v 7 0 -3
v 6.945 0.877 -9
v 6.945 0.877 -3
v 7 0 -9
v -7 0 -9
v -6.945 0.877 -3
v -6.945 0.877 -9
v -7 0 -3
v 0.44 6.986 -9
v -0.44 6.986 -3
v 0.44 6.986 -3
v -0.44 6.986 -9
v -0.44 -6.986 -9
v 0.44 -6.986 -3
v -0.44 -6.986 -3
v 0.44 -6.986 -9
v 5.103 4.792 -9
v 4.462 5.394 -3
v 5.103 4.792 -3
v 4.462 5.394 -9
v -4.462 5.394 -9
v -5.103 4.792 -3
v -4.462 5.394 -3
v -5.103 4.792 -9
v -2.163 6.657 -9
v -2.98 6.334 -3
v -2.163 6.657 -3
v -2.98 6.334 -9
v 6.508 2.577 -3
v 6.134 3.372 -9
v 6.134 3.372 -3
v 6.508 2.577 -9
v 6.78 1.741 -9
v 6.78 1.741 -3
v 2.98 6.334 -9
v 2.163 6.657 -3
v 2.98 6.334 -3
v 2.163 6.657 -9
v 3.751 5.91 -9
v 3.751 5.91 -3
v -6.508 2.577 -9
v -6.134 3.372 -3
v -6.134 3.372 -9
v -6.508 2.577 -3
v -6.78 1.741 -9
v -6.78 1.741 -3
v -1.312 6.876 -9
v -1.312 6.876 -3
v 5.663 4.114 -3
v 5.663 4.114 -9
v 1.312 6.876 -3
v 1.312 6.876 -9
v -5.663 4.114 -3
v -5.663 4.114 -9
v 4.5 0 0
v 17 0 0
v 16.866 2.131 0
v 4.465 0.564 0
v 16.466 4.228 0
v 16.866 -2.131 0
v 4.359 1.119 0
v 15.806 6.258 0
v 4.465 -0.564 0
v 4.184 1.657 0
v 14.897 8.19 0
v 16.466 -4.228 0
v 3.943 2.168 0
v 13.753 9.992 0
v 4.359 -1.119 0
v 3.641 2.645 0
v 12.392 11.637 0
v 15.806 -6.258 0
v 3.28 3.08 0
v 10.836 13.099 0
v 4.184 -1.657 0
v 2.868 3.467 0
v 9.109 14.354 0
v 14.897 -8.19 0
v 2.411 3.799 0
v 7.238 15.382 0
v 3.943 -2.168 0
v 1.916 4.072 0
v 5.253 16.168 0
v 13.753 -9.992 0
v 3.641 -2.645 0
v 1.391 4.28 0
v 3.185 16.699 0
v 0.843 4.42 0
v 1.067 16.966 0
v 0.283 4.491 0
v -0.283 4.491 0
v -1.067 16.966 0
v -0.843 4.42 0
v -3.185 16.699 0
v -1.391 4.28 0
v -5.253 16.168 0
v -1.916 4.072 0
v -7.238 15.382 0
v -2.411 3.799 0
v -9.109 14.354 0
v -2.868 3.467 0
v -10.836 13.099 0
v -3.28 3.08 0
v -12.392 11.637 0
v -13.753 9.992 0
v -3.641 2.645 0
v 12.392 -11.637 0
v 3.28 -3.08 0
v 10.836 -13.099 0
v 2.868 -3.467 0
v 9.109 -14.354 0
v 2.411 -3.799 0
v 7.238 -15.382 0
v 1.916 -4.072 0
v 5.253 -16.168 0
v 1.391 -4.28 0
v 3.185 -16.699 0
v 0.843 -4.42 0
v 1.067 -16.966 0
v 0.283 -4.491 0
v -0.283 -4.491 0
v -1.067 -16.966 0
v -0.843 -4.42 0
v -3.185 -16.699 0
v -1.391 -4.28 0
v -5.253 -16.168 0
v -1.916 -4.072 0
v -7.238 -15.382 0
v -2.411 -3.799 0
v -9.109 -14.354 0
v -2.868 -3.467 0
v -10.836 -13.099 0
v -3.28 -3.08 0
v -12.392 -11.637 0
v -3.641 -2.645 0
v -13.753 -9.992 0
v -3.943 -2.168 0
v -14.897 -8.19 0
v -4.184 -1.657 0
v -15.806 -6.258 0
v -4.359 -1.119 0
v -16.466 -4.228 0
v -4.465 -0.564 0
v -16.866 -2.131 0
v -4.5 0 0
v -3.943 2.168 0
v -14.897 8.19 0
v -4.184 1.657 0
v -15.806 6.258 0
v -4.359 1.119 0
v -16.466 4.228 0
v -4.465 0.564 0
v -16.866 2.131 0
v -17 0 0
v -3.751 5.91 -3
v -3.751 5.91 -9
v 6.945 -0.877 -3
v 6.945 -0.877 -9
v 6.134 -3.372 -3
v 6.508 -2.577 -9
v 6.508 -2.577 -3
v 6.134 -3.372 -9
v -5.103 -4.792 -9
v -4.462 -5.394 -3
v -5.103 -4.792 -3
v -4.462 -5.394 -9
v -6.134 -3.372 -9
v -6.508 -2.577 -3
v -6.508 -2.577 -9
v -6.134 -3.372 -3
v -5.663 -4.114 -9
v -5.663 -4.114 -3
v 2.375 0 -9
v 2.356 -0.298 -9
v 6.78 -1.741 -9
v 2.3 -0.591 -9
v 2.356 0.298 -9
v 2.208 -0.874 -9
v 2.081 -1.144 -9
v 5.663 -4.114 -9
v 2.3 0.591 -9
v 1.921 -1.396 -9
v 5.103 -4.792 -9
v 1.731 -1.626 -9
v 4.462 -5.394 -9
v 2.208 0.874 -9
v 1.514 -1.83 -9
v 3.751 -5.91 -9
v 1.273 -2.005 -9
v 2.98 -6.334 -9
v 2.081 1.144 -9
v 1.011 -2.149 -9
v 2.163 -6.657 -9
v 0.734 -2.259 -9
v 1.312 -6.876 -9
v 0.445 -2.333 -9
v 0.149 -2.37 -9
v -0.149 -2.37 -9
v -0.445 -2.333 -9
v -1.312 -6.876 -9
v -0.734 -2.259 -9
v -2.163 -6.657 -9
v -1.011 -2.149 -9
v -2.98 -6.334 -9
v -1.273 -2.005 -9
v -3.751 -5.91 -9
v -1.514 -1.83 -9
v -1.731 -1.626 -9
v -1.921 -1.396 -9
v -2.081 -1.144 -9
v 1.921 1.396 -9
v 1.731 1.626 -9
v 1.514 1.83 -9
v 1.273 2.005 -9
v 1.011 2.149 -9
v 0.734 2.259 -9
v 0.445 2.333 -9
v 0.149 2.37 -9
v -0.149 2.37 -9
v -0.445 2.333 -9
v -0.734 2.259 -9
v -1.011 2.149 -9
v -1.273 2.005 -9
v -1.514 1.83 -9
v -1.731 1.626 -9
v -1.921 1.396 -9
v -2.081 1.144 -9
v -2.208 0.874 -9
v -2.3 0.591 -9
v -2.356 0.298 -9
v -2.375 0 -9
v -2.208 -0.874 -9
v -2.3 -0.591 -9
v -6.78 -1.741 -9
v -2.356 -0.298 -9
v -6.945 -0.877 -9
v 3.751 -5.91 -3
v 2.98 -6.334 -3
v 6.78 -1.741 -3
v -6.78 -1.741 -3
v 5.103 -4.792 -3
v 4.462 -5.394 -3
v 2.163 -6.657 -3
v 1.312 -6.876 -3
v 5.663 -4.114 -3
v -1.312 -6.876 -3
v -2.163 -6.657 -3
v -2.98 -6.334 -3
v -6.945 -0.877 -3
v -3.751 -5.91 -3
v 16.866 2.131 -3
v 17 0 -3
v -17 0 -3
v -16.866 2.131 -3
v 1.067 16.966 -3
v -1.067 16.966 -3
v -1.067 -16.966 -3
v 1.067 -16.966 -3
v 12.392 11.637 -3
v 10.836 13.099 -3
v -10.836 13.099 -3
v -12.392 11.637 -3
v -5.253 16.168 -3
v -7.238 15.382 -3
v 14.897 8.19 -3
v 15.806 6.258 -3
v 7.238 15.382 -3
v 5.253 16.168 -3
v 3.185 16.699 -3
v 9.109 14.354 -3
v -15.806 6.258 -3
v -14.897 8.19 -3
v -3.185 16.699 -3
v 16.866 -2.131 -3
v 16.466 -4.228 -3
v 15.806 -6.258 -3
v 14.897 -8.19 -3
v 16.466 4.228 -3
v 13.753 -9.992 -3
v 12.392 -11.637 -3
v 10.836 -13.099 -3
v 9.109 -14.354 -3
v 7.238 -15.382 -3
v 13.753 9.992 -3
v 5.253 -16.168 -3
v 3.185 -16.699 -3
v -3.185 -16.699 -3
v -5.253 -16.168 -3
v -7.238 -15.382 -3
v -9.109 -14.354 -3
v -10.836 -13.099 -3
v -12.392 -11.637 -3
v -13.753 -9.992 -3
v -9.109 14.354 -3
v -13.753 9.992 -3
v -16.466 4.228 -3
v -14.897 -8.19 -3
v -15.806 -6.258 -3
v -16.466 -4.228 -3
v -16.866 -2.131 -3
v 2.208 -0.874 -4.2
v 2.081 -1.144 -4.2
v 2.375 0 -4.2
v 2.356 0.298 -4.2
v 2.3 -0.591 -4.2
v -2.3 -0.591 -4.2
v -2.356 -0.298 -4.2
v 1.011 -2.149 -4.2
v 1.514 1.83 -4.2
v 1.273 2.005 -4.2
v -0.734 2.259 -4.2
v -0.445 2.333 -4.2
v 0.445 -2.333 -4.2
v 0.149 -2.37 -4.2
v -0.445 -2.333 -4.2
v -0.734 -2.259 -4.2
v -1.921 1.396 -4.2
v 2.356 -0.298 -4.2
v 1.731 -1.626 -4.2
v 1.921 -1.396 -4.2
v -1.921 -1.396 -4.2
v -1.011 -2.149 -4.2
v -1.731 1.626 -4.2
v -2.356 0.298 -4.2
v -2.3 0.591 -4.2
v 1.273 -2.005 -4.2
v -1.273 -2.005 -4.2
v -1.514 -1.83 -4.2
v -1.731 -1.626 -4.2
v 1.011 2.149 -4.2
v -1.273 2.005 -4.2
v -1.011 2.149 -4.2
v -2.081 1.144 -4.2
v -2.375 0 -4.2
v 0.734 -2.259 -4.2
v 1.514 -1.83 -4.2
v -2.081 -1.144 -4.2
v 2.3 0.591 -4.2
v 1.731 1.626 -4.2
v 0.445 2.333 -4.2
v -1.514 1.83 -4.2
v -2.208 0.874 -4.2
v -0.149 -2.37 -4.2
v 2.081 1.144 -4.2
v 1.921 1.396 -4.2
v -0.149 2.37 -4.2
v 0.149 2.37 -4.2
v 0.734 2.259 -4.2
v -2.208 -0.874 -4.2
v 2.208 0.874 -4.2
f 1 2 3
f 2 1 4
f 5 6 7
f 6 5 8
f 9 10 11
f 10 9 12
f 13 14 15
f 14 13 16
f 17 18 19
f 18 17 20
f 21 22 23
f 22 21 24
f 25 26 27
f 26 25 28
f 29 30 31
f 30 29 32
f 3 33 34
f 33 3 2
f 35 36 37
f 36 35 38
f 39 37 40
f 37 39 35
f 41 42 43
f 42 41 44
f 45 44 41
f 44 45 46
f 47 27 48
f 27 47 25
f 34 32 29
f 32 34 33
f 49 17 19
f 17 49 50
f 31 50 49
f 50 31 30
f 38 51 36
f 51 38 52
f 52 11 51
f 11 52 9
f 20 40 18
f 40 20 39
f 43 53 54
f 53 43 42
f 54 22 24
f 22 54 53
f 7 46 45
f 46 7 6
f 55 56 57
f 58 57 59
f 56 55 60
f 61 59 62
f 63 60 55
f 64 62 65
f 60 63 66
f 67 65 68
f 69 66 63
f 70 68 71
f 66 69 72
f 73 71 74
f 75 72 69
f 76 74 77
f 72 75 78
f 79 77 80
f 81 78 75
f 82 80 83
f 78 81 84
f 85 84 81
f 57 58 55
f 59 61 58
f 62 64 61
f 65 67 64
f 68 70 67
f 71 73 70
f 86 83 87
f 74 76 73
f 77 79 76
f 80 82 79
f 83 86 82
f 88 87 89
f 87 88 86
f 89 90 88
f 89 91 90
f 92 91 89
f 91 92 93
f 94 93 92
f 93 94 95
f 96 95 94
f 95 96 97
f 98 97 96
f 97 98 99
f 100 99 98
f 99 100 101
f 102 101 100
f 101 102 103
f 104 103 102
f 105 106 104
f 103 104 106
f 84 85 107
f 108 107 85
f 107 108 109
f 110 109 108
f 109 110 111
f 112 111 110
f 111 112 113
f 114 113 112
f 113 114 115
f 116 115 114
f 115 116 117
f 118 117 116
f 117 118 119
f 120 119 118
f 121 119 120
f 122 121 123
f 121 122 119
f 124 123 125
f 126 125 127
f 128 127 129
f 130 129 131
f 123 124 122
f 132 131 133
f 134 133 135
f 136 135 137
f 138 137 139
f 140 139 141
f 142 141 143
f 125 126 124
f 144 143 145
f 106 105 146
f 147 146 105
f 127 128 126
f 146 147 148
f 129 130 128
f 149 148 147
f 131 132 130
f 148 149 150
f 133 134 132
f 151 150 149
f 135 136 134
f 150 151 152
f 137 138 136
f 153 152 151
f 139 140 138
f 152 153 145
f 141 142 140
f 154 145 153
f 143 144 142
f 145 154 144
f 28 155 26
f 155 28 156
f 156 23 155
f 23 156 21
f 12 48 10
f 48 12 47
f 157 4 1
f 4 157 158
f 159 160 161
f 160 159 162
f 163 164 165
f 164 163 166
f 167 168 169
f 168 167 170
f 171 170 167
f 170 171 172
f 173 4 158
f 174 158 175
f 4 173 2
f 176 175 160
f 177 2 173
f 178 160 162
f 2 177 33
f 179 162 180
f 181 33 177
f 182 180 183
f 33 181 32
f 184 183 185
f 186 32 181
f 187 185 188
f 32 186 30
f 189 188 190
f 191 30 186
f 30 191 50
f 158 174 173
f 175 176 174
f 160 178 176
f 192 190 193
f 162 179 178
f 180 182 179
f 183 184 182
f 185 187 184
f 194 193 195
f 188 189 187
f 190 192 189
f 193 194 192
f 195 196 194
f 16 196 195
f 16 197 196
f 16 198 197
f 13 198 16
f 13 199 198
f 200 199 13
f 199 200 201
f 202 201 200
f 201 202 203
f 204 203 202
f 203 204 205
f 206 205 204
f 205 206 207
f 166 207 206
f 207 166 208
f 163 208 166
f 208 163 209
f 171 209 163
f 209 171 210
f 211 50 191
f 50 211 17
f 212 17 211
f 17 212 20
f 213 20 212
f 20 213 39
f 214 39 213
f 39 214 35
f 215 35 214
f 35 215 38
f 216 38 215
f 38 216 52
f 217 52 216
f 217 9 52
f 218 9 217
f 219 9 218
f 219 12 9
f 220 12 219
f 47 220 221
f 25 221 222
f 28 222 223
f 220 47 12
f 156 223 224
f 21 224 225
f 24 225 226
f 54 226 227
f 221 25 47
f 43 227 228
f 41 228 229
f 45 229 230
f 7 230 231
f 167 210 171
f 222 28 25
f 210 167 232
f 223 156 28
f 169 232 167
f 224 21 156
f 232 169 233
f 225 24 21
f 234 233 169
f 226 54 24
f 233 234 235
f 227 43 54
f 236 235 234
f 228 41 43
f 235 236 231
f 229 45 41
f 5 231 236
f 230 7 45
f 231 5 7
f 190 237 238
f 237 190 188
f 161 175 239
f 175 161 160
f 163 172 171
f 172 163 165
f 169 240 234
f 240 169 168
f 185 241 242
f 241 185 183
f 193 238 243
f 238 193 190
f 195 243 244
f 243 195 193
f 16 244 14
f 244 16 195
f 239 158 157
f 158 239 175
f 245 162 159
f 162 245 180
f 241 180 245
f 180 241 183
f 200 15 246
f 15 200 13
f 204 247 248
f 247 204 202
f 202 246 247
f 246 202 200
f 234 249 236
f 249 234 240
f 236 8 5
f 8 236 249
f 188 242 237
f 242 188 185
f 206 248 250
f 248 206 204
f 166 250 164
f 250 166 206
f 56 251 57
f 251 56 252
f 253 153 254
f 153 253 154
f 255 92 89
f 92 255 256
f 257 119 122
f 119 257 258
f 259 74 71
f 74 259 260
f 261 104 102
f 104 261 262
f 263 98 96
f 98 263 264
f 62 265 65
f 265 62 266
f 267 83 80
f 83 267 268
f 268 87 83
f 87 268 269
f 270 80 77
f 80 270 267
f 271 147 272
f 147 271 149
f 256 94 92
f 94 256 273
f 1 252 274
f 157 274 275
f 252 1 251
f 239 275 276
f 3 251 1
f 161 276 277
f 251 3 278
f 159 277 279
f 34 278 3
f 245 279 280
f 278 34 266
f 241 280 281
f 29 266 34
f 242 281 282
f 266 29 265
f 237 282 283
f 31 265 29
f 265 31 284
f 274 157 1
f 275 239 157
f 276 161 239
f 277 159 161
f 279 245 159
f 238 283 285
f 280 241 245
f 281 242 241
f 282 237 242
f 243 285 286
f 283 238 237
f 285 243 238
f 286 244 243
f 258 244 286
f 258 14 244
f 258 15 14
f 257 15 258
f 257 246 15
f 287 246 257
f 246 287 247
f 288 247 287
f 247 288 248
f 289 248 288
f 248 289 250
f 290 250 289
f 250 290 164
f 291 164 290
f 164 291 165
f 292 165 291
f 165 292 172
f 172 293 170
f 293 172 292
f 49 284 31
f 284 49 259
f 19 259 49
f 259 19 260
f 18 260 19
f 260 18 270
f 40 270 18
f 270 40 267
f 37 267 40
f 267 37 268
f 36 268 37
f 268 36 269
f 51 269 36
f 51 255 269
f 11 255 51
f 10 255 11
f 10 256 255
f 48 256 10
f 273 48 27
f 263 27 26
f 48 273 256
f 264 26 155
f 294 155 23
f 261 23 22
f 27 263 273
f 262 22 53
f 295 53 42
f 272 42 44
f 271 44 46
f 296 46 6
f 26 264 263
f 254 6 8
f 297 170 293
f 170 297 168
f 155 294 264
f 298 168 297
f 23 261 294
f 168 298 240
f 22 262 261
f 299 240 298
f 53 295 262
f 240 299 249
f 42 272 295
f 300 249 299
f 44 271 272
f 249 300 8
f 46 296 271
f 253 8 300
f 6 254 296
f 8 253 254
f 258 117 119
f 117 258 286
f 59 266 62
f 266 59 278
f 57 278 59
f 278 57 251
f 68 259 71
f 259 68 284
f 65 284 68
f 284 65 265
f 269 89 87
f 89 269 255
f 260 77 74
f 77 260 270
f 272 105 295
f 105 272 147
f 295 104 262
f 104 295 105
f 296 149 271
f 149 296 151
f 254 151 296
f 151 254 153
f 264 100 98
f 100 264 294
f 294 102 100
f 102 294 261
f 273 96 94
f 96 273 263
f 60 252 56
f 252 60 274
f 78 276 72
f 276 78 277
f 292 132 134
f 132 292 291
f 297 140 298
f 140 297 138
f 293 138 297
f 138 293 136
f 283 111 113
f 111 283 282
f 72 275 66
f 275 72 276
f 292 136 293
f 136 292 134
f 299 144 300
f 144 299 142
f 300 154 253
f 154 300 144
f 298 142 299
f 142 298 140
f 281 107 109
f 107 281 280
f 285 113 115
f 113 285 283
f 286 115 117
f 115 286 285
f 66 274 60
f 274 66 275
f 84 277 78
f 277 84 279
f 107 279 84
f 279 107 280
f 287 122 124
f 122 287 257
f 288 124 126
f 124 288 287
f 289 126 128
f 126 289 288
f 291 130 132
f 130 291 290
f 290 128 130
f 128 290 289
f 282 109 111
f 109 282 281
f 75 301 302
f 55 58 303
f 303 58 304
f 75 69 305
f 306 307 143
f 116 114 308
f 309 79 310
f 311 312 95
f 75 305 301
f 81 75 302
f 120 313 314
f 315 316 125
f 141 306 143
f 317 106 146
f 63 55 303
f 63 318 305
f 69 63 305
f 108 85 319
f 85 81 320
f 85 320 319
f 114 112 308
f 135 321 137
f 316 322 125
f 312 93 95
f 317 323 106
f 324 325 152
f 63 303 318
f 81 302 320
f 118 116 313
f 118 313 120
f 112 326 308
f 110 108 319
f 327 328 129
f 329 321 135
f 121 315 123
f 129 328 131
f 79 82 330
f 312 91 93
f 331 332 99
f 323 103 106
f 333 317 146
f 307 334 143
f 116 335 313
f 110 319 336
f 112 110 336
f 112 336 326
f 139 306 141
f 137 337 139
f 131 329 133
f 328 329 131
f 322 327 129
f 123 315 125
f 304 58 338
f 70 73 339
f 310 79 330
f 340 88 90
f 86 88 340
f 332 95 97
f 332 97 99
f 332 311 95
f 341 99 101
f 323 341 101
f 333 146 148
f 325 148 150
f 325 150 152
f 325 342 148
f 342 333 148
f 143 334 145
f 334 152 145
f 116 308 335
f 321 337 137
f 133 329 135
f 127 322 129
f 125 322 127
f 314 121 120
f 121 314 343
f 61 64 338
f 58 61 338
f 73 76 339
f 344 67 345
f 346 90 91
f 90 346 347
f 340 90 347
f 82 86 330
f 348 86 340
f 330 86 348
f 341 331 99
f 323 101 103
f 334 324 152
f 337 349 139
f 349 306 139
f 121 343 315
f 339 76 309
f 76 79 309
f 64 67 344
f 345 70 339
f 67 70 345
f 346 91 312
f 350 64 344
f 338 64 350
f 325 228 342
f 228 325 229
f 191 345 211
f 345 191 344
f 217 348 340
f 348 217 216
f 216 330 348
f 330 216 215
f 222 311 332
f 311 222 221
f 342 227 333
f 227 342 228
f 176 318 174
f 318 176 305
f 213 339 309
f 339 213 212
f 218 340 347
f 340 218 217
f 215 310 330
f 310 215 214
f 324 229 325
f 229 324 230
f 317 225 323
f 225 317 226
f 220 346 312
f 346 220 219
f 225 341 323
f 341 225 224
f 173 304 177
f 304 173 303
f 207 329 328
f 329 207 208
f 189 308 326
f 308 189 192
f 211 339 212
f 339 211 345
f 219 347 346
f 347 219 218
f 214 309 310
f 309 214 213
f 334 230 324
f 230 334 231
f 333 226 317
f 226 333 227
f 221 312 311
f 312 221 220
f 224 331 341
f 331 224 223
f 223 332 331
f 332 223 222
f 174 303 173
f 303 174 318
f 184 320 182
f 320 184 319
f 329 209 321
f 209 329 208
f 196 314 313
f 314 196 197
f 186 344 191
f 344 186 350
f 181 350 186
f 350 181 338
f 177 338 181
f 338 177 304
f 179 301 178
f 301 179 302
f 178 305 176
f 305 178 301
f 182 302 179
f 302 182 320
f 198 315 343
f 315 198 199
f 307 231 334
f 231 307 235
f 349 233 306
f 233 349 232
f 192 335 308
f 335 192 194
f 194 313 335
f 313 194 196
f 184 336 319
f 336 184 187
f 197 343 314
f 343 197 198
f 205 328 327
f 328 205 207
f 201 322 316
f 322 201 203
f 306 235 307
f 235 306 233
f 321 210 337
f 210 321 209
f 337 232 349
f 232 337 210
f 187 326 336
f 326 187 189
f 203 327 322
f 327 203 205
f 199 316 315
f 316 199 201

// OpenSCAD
$fn = 50;


difference() {
	union() {
		translate(v = [0, 0, -9.0000000000]) {
			cylinder(h = 9, r = 7.0000000000);
		}
		translate(v = [0, 0, -3.0000000000]) {
			cylinder(h = 3, r = 17.0000000000);
		}
	}
	union() {
		translate(v = [0, 0, 0]) {
			rotate(a = [0, 0, 0]) {
				difference() {
					union() {
						#translate(v = [0, 0, -9.0000000000]) {
							cylinder(h = 9, r = 2.2500000000);
						}
						#translate(v = [0, 0, -4.2000000000]) {
							cylinder(h = 4.2000000000, r = 7.0000000000, r1 = 2.3750000000, r2 = 4.5000000000);
						}
						#translate(v = [0, 0, -9.0000000000]) {
							cylinder(h = 9, r = 2.3750000000);
						}
						#translate(v = [0, 0, -9.0000000000]) {
							cylinder(h = 9, r = 2.2500000000);
						}
					}
					union();
				}
			}
		}
	}
}
